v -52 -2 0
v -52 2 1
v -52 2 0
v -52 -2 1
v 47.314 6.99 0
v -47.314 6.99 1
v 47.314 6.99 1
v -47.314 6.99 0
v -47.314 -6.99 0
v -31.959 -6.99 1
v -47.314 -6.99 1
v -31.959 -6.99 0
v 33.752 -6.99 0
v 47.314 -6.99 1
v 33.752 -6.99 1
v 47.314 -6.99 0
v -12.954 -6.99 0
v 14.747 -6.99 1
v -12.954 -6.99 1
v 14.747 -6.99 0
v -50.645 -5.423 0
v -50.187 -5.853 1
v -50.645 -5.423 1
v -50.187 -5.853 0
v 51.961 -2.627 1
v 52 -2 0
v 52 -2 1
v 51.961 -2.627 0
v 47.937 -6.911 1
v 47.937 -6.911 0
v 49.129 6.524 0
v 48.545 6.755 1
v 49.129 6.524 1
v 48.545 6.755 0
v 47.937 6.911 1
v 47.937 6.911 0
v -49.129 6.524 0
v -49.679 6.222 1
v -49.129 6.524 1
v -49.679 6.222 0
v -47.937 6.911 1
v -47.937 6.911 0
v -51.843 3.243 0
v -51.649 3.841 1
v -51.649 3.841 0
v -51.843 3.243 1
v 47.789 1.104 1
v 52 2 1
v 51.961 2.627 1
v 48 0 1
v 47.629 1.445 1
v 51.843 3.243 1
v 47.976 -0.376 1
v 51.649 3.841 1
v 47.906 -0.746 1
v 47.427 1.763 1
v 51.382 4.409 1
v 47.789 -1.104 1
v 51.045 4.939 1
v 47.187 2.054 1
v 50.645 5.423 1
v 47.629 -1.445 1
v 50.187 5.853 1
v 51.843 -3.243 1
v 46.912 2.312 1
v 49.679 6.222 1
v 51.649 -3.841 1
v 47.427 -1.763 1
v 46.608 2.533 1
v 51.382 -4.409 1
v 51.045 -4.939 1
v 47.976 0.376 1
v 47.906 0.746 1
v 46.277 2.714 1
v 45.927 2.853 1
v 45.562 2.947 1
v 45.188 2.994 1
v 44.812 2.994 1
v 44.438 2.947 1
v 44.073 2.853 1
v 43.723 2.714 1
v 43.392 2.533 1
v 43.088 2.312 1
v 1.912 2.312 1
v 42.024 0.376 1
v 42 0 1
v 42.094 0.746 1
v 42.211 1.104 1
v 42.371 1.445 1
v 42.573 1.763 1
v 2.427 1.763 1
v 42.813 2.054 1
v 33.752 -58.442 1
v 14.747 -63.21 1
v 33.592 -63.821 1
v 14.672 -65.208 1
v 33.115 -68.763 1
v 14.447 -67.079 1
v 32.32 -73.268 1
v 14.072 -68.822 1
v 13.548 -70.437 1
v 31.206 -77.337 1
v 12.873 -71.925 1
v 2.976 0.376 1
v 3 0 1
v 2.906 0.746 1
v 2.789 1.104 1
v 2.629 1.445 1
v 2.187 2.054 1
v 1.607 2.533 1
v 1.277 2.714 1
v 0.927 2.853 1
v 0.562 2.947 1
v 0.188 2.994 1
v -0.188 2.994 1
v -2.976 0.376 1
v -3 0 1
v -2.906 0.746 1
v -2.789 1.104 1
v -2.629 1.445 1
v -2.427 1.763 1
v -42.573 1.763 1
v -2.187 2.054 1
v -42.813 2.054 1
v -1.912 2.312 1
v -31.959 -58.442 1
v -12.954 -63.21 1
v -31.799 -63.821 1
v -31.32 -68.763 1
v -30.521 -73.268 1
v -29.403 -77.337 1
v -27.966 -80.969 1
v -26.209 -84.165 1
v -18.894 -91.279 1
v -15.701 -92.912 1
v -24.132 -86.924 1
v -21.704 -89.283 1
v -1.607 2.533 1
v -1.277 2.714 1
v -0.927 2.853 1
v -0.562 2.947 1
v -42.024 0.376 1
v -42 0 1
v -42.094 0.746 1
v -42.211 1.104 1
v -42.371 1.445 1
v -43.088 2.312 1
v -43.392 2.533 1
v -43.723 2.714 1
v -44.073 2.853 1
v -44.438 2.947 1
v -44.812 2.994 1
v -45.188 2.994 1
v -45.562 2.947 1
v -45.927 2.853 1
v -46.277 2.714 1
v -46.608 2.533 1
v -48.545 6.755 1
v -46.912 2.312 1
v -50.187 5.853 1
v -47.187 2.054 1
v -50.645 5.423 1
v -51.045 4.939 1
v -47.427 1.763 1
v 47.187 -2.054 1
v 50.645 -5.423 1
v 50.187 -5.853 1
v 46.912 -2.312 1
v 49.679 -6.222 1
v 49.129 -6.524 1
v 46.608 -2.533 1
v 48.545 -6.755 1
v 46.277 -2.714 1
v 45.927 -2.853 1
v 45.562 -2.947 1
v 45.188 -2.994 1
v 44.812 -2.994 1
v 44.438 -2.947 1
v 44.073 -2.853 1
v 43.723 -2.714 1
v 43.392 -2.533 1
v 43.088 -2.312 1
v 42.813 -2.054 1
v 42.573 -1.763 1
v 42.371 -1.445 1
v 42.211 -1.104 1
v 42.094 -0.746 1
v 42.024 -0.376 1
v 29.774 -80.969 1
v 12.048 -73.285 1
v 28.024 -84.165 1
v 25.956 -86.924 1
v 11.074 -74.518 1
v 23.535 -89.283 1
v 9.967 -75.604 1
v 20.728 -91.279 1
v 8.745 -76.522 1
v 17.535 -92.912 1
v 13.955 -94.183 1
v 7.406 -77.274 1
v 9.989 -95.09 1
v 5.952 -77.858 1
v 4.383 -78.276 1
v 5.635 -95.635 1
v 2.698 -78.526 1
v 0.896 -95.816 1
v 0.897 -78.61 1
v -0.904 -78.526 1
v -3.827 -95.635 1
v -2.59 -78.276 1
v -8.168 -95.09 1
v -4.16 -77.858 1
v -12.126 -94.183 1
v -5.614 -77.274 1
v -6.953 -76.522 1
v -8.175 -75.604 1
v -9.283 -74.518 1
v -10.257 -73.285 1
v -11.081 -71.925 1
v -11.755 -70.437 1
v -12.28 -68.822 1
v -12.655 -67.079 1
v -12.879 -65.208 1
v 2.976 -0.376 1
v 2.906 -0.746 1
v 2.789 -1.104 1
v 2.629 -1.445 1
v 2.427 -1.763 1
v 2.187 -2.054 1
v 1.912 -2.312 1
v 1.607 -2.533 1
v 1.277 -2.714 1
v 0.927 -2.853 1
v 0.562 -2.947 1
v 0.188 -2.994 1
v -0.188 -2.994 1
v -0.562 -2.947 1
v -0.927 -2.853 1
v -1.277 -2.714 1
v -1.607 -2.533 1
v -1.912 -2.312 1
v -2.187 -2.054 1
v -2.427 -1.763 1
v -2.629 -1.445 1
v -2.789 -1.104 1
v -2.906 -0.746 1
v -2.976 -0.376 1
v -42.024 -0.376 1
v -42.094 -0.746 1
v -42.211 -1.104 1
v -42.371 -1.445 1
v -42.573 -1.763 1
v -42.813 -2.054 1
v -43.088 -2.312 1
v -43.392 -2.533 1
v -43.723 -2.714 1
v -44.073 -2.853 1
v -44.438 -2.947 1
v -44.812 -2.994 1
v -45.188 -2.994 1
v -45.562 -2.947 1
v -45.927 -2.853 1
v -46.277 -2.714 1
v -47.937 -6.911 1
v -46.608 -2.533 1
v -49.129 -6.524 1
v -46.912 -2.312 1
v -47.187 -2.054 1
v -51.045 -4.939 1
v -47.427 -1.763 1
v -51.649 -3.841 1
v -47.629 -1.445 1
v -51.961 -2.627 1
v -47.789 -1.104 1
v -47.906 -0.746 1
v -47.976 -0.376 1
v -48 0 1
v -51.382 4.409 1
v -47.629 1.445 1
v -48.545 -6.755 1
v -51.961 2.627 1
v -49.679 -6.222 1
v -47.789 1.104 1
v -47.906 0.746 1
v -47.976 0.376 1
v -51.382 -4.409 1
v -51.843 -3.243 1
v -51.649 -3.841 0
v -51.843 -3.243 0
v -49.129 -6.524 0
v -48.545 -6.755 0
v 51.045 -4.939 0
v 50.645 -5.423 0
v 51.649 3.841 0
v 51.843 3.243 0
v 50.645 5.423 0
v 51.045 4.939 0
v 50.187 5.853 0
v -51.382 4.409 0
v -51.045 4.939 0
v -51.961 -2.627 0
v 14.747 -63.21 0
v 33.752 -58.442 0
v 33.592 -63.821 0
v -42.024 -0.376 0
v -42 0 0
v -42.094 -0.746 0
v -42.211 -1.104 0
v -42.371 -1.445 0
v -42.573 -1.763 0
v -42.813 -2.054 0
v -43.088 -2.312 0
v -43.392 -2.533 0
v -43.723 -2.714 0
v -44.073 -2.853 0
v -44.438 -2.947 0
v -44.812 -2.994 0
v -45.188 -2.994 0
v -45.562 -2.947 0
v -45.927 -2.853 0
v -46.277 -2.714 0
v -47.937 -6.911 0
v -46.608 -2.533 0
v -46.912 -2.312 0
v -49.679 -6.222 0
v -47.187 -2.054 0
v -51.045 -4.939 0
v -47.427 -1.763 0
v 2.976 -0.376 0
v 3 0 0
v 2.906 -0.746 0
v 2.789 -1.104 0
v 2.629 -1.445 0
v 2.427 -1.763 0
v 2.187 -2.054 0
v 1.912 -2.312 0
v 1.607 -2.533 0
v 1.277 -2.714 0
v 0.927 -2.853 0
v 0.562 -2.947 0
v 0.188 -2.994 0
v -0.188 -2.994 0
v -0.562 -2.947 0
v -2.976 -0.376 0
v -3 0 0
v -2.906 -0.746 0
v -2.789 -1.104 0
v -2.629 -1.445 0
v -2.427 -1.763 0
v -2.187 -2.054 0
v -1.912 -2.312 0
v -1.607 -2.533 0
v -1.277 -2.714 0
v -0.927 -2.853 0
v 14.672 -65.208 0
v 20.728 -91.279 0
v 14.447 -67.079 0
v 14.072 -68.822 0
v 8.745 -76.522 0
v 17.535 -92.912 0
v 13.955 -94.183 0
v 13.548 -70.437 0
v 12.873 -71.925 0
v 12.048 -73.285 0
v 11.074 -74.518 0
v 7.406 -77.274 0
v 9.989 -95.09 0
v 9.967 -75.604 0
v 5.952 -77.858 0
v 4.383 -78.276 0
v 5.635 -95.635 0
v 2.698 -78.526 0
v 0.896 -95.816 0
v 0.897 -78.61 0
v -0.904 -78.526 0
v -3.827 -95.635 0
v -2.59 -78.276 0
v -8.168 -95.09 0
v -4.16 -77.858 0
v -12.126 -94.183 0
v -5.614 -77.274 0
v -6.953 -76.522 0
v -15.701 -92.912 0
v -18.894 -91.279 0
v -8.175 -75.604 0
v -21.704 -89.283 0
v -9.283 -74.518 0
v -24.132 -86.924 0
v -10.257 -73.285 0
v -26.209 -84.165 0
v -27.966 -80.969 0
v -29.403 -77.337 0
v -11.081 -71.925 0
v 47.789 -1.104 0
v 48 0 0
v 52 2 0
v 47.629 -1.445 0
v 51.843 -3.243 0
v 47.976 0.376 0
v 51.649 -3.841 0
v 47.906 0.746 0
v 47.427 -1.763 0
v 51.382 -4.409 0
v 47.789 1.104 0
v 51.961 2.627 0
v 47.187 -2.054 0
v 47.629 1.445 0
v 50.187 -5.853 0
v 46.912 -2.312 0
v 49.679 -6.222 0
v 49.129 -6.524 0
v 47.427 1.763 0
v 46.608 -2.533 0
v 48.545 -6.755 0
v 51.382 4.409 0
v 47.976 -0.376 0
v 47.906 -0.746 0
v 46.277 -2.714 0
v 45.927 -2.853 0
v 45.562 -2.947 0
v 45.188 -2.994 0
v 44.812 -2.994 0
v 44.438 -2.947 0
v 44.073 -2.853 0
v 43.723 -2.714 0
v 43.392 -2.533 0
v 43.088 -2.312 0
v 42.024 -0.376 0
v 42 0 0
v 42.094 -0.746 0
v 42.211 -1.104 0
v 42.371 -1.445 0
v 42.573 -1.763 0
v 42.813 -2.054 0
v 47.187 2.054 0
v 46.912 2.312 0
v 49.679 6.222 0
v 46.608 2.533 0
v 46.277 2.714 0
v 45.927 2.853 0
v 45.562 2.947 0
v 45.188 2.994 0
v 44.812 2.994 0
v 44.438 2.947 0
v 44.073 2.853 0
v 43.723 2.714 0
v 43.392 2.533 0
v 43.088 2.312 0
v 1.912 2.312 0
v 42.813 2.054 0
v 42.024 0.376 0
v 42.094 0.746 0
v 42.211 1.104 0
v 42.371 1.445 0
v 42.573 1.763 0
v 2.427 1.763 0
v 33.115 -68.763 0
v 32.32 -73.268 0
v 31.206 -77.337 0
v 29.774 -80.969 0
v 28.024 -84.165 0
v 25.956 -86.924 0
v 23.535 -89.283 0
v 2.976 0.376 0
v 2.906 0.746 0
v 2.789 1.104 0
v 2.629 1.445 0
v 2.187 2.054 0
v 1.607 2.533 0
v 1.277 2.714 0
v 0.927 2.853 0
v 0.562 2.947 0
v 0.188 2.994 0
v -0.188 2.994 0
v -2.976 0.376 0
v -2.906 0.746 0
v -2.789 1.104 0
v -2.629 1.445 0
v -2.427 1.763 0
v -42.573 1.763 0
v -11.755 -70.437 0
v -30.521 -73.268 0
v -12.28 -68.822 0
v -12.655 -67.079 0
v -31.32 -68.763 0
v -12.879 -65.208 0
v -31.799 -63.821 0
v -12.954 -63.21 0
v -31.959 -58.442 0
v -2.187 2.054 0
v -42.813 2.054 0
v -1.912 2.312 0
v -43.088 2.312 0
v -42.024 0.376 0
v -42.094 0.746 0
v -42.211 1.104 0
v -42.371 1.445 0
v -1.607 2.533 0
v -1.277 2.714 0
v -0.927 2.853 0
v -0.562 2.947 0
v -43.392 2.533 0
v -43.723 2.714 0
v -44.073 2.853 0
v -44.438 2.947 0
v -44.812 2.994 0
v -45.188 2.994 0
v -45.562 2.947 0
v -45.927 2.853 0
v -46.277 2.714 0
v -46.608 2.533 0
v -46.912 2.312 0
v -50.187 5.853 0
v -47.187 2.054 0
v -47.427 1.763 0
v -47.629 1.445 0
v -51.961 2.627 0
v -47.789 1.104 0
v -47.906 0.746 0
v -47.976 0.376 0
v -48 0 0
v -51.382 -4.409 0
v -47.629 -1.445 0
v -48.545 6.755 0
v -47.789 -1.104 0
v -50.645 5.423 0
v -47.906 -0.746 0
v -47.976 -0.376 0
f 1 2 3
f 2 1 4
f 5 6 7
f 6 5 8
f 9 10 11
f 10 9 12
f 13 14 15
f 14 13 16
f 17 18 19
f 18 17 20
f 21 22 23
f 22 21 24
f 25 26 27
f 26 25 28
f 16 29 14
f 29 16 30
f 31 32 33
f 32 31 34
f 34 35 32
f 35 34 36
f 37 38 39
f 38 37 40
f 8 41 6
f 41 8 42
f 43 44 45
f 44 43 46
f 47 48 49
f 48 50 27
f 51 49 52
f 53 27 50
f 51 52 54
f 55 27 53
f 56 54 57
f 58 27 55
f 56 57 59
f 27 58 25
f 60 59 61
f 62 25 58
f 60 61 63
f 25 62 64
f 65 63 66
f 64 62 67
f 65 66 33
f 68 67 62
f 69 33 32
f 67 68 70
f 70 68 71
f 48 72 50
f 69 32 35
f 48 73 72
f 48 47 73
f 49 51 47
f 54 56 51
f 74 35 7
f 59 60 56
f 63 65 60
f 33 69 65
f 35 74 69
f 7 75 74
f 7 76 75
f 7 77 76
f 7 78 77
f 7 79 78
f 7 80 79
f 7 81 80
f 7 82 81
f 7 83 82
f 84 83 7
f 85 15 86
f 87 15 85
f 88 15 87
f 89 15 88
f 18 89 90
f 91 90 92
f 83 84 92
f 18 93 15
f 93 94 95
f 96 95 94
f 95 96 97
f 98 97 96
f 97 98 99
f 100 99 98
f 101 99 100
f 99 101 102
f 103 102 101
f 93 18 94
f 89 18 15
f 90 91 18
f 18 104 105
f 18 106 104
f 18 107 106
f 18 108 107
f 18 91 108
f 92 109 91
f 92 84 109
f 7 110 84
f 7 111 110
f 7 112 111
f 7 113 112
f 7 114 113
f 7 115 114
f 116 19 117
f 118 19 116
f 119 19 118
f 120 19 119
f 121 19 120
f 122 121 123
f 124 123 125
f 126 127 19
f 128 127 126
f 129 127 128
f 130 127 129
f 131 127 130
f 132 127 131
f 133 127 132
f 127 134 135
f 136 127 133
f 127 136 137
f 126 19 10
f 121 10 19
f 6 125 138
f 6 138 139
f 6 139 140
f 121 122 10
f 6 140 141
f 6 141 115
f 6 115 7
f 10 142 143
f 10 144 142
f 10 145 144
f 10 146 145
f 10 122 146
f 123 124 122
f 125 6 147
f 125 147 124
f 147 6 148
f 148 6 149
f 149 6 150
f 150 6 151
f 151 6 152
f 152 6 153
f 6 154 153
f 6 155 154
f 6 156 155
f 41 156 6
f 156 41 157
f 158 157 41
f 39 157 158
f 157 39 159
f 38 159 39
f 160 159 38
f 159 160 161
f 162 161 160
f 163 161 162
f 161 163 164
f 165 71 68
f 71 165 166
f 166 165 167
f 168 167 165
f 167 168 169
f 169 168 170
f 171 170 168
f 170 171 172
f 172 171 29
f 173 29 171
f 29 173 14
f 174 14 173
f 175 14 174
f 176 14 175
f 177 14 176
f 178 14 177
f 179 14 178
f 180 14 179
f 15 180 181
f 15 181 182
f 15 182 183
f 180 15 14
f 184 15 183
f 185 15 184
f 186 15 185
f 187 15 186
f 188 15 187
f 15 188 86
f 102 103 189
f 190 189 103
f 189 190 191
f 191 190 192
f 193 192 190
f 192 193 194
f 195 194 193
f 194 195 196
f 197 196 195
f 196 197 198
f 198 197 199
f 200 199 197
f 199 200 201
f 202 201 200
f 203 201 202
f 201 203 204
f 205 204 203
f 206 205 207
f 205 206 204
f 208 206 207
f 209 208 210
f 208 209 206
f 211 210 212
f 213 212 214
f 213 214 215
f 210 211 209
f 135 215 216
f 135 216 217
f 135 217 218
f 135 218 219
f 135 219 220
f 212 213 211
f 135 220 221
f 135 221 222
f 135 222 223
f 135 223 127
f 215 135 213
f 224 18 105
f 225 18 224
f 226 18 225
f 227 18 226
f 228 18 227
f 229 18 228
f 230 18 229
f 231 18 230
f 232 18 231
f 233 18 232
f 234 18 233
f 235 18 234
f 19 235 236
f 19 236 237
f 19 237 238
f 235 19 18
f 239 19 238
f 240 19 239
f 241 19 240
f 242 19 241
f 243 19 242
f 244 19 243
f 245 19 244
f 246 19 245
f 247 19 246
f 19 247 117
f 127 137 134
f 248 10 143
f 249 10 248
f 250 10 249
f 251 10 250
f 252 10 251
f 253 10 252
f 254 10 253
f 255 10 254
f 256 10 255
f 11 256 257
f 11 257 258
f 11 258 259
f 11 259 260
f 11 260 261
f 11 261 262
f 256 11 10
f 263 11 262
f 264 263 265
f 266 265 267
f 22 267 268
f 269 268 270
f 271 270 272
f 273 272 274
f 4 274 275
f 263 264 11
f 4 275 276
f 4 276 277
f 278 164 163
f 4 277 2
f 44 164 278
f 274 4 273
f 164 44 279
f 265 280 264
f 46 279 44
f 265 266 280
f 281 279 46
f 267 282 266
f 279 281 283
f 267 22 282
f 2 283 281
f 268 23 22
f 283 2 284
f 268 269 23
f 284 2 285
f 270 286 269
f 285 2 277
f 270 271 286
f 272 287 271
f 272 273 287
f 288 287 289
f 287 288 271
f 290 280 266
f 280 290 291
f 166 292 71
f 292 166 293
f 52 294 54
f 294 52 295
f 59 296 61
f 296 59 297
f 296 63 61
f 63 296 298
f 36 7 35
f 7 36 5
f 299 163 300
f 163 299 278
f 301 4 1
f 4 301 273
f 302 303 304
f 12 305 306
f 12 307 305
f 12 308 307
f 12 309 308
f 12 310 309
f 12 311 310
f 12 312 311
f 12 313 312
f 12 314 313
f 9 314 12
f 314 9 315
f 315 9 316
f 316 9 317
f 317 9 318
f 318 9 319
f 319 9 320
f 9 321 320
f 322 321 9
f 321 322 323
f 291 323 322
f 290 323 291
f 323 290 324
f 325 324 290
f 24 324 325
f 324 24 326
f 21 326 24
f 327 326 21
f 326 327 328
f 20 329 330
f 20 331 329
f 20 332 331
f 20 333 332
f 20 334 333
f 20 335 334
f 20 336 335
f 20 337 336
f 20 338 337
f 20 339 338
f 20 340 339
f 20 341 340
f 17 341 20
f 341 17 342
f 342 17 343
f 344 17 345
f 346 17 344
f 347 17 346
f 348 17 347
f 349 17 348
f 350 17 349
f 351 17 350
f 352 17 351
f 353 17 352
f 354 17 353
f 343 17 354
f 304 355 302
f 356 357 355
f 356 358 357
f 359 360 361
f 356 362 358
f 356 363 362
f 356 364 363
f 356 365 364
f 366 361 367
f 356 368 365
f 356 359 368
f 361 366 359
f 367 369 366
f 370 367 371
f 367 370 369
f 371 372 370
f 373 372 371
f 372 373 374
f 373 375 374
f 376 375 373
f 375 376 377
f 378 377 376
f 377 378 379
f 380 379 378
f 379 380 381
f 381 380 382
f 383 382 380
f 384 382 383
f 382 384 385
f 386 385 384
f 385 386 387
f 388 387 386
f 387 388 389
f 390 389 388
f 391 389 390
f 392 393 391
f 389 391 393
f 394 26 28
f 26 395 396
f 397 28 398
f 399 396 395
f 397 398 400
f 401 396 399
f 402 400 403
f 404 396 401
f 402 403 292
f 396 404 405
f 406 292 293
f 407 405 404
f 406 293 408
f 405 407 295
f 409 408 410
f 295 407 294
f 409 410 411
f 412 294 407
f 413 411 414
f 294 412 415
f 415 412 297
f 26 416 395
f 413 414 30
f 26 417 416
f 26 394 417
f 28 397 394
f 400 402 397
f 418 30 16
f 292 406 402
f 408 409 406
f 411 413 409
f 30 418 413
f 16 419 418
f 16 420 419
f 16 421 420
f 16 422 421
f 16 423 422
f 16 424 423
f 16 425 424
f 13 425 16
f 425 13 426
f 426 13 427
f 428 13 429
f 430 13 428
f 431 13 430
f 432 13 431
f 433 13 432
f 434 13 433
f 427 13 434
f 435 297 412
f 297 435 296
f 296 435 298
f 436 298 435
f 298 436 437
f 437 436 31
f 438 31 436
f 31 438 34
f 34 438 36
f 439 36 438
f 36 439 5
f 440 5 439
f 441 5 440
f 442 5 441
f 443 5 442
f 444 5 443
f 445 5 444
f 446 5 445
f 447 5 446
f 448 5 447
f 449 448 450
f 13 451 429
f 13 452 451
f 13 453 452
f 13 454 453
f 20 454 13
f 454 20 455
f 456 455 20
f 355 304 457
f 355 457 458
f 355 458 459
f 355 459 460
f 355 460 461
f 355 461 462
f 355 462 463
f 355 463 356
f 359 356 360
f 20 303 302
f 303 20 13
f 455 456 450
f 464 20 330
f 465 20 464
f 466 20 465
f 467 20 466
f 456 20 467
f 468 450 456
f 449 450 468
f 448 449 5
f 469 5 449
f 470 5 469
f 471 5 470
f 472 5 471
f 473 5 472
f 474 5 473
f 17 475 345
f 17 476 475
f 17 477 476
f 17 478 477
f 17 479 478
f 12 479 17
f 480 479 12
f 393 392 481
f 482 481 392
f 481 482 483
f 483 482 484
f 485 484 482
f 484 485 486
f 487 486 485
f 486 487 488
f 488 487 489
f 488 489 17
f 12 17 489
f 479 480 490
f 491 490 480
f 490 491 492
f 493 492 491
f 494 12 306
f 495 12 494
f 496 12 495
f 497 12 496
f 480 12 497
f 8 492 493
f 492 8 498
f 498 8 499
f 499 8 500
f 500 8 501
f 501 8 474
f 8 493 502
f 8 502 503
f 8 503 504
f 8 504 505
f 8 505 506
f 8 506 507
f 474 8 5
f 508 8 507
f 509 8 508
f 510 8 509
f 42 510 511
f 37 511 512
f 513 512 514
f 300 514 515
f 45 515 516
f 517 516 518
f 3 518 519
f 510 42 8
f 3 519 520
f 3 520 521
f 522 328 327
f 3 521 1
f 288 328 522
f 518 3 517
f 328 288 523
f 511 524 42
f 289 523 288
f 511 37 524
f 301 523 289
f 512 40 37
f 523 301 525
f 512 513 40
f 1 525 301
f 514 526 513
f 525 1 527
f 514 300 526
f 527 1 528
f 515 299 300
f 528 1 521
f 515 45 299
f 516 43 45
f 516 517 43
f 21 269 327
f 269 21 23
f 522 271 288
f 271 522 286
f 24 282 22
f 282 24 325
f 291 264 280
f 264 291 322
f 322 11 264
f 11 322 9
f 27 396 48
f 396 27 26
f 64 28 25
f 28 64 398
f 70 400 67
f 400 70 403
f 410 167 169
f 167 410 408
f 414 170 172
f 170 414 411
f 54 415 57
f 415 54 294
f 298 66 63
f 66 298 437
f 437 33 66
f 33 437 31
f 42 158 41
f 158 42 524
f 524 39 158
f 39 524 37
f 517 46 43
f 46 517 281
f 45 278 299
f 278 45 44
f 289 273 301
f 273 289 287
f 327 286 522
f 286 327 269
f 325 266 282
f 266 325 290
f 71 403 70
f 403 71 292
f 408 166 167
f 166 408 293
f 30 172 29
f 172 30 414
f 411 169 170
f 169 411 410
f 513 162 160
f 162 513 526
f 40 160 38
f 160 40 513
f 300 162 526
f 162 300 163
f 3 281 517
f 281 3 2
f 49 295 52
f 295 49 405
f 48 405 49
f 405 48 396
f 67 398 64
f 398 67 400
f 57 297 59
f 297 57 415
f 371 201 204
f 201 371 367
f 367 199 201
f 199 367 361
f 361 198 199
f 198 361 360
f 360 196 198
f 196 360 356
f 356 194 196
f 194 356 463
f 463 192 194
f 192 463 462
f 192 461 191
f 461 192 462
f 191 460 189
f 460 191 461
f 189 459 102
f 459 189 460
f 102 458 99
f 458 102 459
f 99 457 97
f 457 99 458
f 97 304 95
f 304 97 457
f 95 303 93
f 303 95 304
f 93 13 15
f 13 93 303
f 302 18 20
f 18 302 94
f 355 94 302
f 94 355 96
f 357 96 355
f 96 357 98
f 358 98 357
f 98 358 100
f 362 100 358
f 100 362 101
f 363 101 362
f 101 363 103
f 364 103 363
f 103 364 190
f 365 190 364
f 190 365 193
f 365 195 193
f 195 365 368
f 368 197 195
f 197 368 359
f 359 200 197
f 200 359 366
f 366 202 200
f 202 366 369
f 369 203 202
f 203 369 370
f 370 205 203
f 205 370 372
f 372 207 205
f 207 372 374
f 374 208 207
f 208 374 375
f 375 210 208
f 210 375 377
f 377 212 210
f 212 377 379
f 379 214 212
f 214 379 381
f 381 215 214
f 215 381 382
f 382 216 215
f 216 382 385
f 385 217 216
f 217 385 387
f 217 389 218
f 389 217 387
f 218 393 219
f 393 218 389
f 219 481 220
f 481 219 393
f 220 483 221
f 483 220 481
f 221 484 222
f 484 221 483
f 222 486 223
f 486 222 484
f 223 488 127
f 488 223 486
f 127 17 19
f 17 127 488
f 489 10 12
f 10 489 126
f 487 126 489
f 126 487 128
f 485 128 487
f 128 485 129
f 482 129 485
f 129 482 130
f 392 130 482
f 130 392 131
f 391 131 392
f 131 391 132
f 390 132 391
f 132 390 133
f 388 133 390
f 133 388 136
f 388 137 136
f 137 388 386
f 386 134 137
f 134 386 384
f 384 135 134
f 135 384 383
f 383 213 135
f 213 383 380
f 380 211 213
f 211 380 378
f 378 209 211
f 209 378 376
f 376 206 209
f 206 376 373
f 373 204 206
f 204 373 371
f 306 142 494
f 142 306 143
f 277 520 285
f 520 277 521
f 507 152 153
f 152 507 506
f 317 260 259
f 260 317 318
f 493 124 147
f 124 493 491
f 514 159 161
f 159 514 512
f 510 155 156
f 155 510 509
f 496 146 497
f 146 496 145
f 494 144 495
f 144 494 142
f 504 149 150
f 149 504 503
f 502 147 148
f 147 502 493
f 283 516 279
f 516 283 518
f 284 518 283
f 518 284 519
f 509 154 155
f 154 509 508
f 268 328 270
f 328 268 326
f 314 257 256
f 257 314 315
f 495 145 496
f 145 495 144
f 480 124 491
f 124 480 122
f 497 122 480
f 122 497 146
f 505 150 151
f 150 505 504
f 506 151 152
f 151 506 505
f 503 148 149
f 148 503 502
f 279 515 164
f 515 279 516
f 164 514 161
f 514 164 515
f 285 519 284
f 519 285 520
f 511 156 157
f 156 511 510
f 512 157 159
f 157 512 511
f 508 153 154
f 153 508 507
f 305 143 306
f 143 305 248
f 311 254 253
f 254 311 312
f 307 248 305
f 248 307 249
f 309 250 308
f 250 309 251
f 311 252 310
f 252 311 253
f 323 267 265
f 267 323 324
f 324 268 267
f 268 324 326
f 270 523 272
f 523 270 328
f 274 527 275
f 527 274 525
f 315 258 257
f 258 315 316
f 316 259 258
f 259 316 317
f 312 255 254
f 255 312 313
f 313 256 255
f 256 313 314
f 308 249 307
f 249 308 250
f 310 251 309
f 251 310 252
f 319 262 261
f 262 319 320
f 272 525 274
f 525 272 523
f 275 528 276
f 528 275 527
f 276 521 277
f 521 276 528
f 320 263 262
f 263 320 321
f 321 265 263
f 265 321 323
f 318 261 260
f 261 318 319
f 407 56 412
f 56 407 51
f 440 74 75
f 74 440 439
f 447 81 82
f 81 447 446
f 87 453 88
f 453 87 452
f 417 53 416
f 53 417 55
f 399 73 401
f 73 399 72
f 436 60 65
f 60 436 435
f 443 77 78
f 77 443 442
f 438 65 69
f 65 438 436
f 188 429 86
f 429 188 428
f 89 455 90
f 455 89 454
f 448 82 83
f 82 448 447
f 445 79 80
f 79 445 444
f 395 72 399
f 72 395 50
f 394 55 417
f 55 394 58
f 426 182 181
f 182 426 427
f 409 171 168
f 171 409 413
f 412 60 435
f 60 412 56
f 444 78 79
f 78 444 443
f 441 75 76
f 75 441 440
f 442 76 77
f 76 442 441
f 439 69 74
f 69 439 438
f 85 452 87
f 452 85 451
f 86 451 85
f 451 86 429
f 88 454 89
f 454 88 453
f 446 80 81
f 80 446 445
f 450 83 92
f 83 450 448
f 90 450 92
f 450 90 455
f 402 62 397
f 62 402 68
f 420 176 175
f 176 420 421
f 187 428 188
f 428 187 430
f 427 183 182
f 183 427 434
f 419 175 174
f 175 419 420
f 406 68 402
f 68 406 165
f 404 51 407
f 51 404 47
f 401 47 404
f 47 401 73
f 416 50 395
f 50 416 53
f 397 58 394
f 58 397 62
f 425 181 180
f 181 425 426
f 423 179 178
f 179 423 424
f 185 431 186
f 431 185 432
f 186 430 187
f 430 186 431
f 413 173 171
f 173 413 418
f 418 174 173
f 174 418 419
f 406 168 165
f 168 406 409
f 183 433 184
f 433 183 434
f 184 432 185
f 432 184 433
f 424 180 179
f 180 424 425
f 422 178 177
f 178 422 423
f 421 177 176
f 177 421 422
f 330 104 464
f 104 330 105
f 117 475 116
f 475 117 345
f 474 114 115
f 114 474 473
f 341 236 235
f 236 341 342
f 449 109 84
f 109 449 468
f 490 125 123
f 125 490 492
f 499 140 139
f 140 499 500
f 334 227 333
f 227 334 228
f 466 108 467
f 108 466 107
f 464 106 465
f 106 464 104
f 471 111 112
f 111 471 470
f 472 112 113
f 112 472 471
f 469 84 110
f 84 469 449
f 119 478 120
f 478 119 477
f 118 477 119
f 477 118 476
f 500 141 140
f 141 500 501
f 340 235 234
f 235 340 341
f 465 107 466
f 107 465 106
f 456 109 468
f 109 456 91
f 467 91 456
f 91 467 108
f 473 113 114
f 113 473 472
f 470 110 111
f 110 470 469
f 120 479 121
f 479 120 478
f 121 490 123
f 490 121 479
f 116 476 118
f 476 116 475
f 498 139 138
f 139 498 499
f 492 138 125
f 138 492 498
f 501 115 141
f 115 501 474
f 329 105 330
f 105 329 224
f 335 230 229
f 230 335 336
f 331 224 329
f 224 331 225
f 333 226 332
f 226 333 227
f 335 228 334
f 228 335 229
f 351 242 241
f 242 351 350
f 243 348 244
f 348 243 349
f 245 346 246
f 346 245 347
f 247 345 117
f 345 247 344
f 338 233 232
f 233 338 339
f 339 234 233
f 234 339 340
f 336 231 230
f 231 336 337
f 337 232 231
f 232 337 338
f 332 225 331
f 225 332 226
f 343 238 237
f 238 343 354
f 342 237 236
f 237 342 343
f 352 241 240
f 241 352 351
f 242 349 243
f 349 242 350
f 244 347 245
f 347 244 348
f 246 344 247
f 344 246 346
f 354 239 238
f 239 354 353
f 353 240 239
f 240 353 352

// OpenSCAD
$fn = 50;


difference() {
	union() {
		translate(v = [0, 0, 0]) {
			rotate(a = [0, 0, 0]) {
				hull() {
					translate(v = [-47.0000000000, 2.0000000000, 0]) {
						rotate(a = [0, 0, 0]) {
							translate(v = [0, 0, 0]) {
								rotate(a = [0, 0, 0]) {
									cylinder(h = 1, r = 5);
								}
							}
						}
					}
					translate(v = [47.0000000000, 2.0000000000, 0]) {
						rotate(a = [0, 0, 0]) {
							translate(v = [0, 0, 0]) {
								rotate(a = [0, 0, 0]) {
									cylinder(h = 1, r = 5);
								}
							}
						}
					}
					translate(v = [-47.0000000000, -2.0000000000, 0]) {
						rotate(a = [0, 0, 0]) {
							translate(v = [0, 0, 0]) {
								rotate(a = [0, 0, 0]) {
									cylinder(h = 1, r = 5);
								}
							}
						}
					}
					translate(v = [47.0000000000, -2.0000000000, 0]) {
						rotate(a = [0, 0, 0]) {
							translate(v = [0, 0, 0]) {
								rotate(a = [0, 0, 0]) {
									cylinder(h = 1, r = 5);
								}
							}
						}
					}
				}
			}
		}
		translate(v = [0, 0, 0]) {
			rotate(a = [0, 0, 0]) {
				linear_extrude(height = 1) {
					text(font = "DejaVu Sans Mono:style=Bold", halign = "center", size = 95, text = "U", valign = "top");
				}
			}
		}
	}
	union() {
		translate(v = [-45.0000000000, 0.0000000000, -125.0000000000]) {
			rotate(a = [0, 0, 0]) {
				cylinder(h = 250, r = 3.0000000000);
			}
		}
		translate(v = [45.0000000000, 0.0000000000, -125.0000000000]) {
			rotate(a = [0, 0, 0]) {
				cylinder(h = 250, r = 3.0000000000);
			}
		}
		translate(v = [45.0000000000, 0.0000000000, -125.0000000000]) {
			rotate(a = [0, 0, 0]) {
				cylinder(h = 250, r = 3.0000000000);
			}
		}
		translate(v = [0, 0, -125.0000000000]) {
			rotate(a = [0, 0, 0]) {
				cylinder(h = 250, r = 3.0000000000);
			}
		}
	}
}
